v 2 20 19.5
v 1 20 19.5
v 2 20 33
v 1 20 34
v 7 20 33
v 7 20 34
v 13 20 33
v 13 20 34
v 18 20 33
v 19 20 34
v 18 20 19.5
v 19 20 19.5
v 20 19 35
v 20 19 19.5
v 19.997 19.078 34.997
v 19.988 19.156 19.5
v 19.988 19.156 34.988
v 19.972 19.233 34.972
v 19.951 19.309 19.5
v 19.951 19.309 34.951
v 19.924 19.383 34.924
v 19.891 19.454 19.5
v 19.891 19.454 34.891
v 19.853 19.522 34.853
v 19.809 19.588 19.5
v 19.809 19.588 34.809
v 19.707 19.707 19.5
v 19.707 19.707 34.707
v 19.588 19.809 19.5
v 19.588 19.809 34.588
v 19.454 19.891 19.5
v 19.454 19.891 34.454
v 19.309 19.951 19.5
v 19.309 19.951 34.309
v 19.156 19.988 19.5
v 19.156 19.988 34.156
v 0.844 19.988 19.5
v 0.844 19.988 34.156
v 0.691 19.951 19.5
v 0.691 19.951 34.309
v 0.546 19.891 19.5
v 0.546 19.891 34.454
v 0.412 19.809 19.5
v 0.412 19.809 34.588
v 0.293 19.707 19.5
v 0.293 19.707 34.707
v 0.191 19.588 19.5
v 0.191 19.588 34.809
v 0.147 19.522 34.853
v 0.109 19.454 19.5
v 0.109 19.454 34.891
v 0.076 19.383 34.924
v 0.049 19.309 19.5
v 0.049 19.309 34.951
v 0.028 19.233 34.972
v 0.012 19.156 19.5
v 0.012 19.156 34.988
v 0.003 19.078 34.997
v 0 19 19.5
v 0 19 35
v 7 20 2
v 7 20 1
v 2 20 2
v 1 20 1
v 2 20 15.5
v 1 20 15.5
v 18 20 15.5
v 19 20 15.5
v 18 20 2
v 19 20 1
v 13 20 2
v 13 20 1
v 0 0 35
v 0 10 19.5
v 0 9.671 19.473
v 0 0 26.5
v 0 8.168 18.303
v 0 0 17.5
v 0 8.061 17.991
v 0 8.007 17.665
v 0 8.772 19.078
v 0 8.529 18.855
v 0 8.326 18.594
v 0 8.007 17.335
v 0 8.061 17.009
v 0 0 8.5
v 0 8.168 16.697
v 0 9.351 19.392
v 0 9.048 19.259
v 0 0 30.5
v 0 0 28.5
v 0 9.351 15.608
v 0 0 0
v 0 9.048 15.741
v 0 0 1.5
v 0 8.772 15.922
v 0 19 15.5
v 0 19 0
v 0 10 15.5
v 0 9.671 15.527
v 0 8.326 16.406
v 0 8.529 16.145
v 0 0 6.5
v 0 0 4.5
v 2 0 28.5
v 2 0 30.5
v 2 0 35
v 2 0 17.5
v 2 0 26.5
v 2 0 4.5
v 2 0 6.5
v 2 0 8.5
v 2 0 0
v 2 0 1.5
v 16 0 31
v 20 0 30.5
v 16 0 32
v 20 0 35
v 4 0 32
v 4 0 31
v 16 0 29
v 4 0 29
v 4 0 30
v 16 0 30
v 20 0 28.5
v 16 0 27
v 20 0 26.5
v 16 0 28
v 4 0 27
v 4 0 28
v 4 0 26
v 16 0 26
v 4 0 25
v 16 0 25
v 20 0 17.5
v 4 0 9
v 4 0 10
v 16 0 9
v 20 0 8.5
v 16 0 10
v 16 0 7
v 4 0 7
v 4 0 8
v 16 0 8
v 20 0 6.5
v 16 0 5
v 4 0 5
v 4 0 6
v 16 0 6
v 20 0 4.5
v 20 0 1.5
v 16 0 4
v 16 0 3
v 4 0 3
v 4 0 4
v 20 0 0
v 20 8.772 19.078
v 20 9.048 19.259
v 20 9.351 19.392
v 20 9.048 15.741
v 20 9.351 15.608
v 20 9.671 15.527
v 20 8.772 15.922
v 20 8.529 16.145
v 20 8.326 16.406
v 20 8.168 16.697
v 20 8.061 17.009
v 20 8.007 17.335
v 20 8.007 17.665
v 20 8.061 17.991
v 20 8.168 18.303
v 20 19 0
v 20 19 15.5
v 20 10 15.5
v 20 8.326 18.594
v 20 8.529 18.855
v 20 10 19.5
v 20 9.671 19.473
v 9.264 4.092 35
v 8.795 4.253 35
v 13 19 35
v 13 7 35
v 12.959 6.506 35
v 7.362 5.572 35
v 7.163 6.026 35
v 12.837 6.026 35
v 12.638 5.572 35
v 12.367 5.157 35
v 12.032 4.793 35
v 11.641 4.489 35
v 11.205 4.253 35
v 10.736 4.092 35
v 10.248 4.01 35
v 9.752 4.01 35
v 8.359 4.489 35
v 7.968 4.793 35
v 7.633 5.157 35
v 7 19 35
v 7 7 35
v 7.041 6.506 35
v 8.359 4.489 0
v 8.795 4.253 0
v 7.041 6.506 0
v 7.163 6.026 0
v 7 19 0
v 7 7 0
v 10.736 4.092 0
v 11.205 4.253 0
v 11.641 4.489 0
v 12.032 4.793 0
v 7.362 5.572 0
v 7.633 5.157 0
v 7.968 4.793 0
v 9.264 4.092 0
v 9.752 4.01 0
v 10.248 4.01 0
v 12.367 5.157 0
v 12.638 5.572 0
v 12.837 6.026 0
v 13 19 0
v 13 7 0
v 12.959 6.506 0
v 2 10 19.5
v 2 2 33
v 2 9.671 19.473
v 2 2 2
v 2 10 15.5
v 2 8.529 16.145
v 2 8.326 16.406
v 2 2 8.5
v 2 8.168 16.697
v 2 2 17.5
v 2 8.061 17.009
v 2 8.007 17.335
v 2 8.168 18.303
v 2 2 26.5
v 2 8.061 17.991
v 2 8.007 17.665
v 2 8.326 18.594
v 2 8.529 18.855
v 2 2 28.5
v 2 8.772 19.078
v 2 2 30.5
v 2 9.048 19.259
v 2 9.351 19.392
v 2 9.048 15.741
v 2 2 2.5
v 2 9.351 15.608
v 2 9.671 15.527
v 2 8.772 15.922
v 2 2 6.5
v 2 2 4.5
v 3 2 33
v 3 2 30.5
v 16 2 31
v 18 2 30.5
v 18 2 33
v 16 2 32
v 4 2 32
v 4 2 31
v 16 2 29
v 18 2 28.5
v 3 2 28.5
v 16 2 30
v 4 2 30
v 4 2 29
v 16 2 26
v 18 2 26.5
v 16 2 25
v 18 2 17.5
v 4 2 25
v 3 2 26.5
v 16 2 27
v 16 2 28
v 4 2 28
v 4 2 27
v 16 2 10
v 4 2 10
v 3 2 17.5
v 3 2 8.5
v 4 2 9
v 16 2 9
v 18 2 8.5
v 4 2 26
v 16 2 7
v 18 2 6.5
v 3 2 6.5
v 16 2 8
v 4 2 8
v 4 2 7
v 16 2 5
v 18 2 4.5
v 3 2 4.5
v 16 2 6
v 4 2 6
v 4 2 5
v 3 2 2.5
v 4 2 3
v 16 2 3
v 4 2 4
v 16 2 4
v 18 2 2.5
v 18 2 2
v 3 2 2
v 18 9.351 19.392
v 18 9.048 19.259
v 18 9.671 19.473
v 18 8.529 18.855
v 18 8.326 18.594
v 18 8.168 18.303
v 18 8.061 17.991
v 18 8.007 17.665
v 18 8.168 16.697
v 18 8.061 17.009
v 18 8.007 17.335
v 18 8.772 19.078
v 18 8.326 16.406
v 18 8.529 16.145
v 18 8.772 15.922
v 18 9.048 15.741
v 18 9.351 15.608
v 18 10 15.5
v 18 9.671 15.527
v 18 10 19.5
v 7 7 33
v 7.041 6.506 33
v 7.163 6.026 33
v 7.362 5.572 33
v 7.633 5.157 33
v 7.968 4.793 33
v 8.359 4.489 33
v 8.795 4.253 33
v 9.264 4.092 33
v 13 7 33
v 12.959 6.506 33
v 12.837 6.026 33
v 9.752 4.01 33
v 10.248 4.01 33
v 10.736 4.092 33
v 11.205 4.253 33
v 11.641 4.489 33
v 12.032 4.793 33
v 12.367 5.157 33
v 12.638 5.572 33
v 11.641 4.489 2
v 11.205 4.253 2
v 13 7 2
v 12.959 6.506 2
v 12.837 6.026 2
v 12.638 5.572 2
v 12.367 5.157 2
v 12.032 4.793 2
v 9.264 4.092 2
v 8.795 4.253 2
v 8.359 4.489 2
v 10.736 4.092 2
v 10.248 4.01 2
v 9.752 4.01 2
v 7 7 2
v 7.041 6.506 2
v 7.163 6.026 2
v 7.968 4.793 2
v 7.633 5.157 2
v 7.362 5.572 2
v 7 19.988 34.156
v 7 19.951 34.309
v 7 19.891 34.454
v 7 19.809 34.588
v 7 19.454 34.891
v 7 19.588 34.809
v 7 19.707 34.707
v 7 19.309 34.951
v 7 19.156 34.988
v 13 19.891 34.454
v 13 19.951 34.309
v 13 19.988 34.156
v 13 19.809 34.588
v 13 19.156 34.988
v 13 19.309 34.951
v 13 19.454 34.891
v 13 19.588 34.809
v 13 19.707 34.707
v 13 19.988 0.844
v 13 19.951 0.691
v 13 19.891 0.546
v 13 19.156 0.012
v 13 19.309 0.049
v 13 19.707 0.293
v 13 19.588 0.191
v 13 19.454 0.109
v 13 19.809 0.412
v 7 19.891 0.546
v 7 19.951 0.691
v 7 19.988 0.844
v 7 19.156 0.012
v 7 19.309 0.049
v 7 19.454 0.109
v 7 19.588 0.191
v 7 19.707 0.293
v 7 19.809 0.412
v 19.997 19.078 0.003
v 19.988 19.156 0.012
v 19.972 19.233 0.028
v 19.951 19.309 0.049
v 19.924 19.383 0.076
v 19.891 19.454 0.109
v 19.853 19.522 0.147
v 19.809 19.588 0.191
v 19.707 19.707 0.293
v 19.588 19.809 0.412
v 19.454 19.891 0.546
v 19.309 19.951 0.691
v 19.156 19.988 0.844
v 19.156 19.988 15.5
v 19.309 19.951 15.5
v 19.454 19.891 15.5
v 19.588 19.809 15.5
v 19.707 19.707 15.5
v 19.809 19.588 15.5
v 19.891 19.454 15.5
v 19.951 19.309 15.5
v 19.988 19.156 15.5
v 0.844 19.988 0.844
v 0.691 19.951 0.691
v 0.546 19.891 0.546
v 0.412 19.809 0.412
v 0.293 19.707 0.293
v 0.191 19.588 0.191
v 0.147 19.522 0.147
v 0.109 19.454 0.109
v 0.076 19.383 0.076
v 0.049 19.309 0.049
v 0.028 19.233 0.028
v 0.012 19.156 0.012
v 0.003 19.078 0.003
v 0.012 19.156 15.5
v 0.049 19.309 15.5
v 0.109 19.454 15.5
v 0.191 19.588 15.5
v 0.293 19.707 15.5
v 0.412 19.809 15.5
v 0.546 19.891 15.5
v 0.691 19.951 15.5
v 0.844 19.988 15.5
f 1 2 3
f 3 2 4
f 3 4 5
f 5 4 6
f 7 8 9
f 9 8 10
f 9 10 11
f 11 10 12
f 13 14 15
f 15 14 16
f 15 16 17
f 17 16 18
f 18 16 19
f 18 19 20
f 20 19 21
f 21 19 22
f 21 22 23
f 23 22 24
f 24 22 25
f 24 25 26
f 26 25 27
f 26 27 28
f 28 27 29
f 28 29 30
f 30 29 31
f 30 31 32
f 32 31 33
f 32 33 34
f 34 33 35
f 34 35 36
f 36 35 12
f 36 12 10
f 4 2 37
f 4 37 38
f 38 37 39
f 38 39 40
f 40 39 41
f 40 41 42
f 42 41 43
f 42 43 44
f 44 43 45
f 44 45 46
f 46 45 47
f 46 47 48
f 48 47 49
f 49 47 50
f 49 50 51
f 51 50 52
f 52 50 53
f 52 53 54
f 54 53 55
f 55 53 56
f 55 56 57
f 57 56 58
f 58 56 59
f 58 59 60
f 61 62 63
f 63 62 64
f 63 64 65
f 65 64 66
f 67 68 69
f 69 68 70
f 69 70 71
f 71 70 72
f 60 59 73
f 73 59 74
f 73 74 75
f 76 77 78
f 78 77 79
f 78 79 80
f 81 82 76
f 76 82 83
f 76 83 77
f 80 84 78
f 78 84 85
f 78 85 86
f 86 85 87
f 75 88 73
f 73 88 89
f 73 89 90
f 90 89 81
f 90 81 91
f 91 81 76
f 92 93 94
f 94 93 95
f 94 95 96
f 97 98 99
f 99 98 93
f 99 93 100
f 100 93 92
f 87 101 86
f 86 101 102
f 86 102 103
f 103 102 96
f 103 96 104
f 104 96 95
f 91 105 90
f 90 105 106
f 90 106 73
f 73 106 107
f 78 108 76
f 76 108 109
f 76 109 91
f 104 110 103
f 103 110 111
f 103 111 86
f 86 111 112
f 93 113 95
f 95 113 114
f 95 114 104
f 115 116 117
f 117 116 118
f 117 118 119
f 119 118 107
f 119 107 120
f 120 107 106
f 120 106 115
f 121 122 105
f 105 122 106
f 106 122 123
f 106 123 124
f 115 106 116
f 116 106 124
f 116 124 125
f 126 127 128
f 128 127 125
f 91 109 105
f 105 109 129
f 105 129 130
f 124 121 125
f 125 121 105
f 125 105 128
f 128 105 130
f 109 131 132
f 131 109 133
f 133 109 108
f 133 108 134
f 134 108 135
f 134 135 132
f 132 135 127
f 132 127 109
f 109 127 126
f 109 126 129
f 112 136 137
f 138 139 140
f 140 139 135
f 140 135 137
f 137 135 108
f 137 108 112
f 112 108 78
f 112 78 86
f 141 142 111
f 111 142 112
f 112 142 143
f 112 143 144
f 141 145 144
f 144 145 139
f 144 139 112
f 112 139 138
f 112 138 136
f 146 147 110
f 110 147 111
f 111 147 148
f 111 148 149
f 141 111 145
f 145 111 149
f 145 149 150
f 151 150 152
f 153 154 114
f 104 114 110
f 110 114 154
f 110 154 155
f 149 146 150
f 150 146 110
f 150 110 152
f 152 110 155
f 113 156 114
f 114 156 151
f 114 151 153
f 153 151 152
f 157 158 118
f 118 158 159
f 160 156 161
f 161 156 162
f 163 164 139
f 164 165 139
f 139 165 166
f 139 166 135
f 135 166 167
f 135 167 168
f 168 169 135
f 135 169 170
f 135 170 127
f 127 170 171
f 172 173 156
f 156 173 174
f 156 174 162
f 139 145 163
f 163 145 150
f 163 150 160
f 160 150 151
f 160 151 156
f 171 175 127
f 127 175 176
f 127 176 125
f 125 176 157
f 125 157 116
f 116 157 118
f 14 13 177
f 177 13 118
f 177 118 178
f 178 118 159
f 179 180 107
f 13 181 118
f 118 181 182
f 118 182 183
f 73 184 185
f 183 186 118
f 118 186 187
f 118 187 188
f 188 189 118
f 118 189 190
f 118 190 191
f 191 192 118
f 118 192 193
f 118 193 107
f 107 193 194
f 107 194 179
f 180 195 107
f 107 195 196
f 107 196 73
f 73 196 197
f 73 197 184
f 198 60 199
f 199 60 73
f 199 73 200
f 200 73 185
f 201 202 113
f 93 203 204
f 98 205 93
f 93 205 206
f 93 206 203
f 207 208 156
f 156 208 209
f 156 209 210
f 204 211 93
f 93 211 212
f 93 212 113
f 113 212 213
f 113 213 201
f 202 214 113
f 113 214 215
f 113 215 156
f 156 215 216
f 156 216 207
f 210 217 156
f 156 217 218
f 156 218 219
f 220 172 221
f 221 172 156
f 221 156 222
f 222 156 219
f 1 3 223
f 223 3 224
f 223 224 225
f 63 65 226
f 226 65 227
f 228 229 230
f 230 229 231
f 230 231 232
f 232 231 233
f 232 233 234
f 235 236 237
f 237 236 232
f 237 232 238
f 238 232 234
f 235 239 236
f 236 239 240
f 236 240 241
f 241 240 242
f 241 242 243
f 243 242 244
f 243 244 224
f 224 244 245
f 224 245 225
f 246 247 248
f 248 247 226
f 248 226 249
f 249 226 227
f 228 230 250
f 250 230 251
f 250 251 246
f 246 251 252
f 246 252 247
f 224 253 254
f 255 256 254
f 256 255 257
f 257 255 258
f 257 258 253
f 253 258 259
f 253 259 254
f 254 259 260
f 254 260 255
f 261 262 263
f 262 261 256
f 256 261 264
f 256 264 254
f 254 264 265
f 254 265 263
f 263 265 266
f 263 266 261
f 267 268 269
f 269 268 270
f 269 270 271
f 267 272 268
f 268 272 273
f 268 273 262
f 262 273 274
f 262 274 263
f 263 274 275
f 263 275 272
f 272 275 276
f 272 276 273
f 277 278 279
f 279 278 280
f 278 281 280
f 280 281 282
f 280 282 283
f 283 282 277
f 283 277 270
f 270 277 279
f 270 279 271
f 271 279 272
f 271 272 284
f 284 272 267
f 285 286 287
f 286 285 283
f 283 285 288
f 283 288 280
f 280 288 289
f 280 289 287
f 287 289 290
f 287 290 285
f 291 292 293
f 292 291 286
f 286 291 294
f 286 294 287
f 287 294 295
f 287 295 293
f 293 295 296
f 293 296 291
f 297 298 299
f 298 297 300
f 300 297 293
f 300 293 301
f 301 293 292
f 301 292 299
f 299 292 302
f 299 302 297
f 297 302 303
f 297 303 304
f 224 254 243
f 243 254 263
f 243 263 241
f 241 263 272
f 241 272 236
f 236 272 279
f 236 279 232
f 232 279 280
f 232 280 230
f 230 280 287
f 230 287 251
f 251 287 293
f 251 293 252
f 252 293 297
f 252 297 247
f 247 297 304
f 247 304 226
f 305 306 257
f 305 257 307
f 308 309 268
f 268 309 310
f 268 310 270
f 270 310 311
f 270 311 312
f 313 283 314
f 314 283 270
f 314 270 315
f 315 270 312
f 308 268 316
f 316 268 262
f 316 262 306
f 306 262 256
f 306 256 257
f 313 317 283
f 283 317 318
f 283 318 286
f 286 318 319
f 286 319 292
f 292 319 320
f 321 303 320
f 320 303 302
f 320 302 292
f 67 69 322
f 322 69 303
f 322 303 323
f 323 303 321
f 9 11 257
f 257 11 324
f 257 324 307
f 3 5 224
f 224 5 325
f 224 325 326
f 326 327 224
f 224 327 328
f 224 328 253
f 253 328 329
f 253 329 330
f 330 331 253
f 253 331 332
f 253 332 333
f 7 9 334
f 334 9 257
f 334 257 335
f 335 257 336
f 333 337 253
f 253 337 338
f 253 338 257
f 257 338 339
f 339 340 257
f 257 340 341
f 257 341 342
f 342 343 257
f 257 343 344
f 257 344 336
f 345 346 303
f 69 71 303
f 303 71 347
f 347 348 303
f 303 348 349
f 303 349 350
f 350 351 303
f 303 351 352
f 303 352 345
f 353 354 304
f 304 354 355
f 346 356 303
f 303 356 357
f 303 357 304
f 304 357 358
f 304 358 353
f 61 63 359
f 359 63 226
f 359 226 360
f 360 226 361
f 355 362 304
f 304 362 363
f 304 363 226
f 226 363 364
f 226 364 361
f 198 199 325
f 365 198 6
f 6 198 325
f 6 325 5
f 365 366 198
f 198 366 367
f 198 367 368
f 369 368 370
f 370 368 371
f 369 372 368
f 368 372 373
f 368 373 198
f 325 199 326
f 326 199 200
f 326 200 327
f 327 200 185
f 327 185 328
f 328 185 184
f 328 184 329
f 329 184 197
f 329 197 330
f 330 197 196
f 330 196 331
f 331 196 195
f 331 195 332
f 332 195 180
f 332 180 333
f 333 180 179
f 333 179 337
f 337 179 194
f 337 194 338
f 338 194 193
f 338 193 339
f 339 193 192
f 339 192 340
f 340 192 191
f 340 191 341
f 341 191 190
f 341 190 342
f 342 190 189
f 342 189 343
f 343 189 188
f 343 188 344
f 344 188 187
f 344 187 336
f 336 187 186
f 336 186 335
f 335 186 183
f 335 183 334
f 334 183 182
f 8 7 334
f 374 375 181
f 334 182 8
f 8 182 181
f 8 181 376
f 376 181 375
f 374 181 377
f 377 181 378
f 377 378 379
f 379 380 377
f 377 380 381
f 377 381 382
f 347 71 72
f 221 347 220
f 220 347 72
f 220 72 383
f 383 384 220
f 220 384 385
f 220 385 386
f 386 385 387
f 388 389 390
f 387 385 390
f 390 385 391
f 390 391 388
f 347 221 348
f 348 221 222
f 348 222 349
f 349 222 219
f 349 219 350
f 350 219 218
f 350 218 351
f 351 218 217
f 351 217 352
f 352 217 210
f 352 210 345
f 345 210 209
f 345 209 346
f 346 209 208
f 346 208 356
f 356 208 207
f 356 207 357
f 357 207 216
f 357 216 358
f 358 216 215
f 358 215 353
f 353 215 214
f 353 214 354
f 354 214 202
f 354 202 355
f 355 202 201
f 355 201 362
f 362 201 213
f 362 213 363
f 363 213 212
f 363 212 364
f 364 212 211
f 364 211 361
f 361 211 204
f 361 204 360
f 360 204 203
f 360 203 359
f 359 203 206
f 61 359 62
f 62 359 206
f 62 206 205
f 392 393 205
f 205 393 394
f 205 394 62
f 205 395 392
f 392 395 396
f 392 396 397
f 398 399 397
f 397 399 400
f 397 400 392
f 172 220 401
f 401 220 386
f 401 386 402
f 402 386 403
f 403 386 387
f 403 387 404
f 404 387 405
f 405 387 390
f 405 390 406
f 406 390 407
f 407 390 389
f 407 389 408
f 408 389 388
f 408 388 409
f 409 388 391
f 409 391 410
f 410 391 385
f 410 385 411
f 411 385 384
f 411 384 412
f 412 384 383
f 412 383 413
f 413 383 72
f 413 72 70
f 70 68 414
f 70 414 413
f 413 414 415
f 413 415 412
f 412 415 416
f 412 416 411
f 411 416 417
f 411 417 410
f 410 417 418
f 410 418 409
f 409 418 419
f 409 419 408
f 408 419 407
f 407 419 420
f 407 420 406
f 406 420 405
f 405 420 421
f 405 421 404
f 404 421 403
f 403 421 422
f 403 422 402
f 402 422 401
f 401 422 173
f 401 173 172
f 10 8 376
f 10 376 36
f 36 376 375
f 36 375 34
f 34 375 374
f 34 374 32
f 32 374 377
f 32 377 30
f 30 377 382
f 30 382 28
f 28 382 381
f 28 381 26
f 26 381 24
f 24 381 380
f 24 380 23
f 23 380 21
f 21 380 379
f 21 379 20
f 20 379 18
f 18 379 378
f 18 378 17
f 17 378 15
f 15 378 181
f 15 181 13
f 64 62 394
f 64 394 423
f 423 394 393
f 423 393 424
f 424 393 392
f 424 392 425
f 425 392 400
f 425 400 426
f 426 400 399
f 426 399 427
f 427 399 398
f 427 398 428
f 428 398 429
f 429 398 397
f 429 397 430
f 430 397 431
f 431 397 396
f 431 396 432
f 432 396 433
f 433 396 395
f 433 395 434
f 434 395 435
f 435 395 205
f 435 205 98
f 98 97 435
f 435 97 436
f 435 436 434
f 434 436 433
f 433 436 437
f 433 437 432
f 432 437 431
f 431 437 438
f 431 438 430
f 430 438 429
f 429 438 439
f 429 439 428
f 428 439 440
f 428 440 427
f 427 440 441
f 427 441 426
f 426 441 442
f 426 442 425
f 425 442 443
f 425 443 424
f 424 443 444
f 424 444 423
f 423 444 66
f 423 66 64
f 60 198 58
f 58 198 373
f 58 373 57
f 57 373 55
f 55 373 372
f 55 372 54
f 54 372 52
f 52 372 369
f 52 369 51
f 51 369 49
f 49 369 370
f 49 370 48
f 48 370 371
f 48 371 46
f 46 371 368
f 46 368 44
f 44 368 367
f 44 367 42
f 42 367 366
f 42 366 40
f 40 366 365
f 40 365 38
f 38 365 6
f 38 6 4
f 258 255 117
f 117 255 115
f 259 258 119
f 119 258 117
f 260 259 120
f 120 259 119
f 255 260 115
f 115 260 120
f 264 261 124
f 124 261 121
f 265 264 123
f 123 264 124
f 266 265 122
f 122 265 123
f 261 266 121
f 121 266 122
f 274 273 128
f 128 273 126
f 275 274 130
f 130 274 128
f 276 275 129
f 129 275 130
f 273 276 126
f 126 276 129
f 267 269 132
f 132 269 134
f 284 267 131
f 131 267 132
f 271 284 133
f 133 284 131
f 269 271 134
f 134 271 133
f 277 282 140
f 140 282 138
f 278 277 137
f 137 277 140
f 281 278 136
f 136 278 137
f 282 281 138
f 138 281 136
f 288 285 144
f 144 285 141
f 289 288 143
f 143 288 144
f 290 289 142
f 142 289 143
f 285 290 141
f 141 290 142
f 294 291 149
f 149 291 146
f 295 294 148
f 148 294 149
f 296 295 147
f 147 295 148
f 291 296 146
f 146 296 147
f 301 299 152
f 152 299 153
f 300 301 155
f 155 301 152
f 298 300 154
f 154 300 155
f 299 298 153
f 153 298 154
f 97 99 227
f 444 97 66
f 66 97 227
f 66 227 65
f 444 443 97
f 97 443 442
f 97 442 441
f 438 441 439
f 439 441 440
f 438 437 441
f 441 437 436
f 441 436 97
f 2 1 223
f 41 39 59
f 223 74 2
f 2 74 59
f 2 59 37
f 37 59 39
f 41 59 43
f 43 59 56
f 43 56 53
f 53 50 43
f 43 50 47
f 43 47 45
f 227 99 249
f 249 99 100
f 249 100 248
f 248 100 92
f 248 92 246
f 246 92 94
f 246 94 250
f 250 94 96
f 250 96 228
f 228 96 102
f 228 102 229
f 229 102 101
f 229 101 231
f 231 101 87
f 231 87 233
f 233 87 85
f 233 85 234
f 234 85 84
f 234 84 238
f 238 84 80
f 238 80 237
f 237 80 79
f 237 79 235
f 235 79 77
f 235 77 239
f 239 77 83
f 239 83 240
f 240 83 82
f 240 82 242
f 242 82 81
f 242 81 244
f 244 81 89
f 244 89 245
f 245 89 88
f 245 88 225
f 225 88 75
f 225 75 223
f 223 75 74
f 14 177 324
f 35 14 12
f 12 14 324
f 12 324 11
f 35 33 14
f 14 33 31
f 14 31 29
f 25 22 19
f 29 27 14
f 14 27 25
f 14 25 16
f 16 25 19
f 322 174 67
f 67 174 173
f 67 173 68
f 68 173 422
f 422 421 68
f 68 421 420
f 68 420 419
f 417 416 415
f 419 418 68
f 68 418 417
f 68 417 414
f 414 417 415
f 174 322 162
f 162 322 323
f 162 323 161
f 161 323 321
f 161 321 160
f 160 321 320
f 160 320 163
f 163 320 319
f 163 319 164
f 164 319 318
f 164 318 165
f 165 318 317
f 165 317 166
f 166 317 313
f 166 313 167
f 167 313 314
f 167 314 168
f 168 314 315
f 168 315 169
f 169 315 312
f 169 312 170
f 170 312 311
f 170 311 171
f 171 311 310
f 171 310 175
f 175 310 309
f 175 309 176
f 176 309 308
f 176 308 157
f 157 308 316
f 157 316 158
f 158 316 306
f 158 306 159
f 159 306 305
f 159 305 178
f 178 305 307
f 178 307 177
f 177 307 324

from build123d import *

# Parameters (mm, degrees)
SKIZZE1_W                                   = 20
SKIZZE1_H                                   = 20
AUFSATZ_LINEAR_AUSTRAGEN1_DEPTH             = 35
WANDUNG1_T                                  = -2
SCHNITT_LINEAR_AUSTRAGEN2_DEPTH             = 33
VERRUNDUNG1_R                               = 1
SKIZZE4_W                                   = 12
SKIZZE4_H                                   = 1
SCHNITT_LINEAR_AUSTRAGEN3_DEPTH             = 2
LINEARES_MUSTER1_COUNT                      = 8
LINEARES_MUSTER1_PITCH                      = 2
LINEARES_MUSTER1_COL_COUNT                  = 8
LINEARES_MUSTER1_COL_PITCH                  = 2
SKIZZE5_W                                   = 12
SKIZZE5_H                                   = 15
AUFSATZ_LINEAR_AUSTRAGEN2_DEPTH             = 2
SCHNITT_LINEAR_AUSTRAGEN4_REACH             = 46.147
SCHNITT_LINEAR_AUSTRAGEN4_DIRECTION_2_REACH = 46.147


with BuildPart() as part:
    # Skizze1 → Aufsatz-Linear austragen1 (new body)
    with BuildSketch(Plane.XY):
        with Locations((10, 10)):
            Rectangle(SKIZZE1_W, SKIZZE1_H)
    extrude(amount=AUFSATZ_LINEAR_AUSTRAGEN1_DEPTH)

    # Wandung1
    wandung1_openings = [part.faces().sort_by_distance(p)[0] for p in [
        (10, 20, 17.5),
    ]]
    offset(amount=WANDUNG1_T, openings=wandung1_openings, kind=Kind.INTERSECTION)

    # Skizze3 → Schnitt-Linear austragen2 (cut)
    with BuildSketch(Plane.XY.offset(35)):
        with BuildLine():
            Line((13, 20), (13, 7))
            ThreePointArc((13, 7), (10, 4), (7, 7))
            Line((7, 7), (7, 20))
            ThreePointArc((7, 20), (10, 23), (13, 20))
        make_face()
    schnitt_linear_austragen2 = extrude(amount=-SCHNITT_LINEAR_AUSTRAGEN2_DEPTH, mode=Mode.SUBTRACT)

    # Spiegeln1: Schnitt-Linear austragen2 across plane
    add(schnitt_linear_austragen2.mirror(Plane.XY.offset(17.5)), mode=Mode.SUBTRACT)

    # Verrundung1
    verrundung1_edges = [part.edges().sort_by_distance(p)[0] for p in [
        (16.5, 20, 35),
        (3.5, 20, 35),
        (3.5, 20, 0),
        (16.5, 20, 0),
        (0, 20, 17.5),
        (20, 20, 17.5),
    ]]
    fillet(verrundung1_edges, radius=VERRUNDUNG1_R)

    # Skizze4 → Schnitt-Linear austragen3 (cut)
    with BuildSketch(Plane(origin=(0, 2, 0), x_dir=(1, 0, 0), z_dir=(0, 1, 0))):
        with Locations((10, -17.5)):
            Rectangle(SKIZZE4_W, SKIZZE4_H)
    schnitt_linear_austragen3 = extrude(amount=-SCHNITT_LINEAR_AUSTRAGEN3_DEPTH, mode=Mode.SUBTRACT)

    # Lineares Muster1: Schnitt-Linear austragen3 ×8
    with Locations(*[(0, 0, i * LINEARES_MUSTER1_PITCH) for i in range(1, LINEARES_MUSTER1_COUNT)]):
        add(schnitt_linear_austragen3, mode=Mode.SUBTRACT)

    # Lineares Muster1 col: Schnitt-Linear austragen3 ×8
    with Locations(*[(0, 0, -i * LINEARES_MUSTER1_COL_PITCH) for i in range(1, LINEARES_MUSTER1_COL_COUNT)]):
        add(schnitt_linear_austragen3, mode=Mode.SUBTRACT)

    # Skizze5 → Aufsatz-Linear austragen2 (add)
    with BuildSketch(Plane.XZ):
        with Locations((10, 17.5)):
            Rectangle(SKIZZE5_W, SKIZZE5_H)
    extrude(amount=-AUFSATZ_LINEAR_AUSTRAGEN2_DEPTH)

    # Schnitt-Linear austragen4: up to this face of the body (flat: up to its plane)
    schnitt_linear_austragen4_end = Plane(part.part.faces().sort_by_distance((20, 9.5, 17.5))[0])
    # Skizze7 → Schnitt-Linear austragen4 (cut, up to the picked face)
    with BuildSketch(Plane.ZY.offset(-18), mode=Mode.PRIVATE) as schnitt_linear_austragen4_sk1:
        with BuildLine():
            Line((19.5, 30), (19.5, 10))
            ThreePointArc((19.5, 10), (17.5, 8), (15.5, 10))
            Line((15.5, 10), (15.5, 30))
            ThreePointArc((15.5, 30), (17.5, 32), (19.5, 30))
        make_face()
    schnitt_linear_austragen4_tool1 = split(extrude(schnitt_linear_austragen4_sk1.sketch, amount=-SCHNITT_LINEAR_AUSTRAGEN4_REACH, mode=Mode.PRIVATE), bisect_by=schnitt_linear_austragen4_end, keep=Keep.BOTH, mode=Mode.PRIVATE)
    add(schnitt_linear_austragen4_tool1.solids().sort_by(Axis((18, 20, 17.5), (1, 0, 0)))[0], mode=Mode.SUBTRACT)

    # Schnitt-Linear austragen4 direction 2: up to this face of the body (flat: up to its plane)
    schnitt_linear_austragen4_direction_2_end = Plane(part.part.faces().sort_by_distance((0, 9.5, 17.5))[0])
    # Skizze7 → Schnitt-Linear austragen4 direction 2 (cut, up to the picked face)
    with BuildSketch(Plane.ZY.offset(-18), mode=Mode.PRIVATE) as schnitt_linear_austragen4_direction_2_sk1:
        with BuildLine():
            Line((19.5, 30), (19.5, 10))
            ThreePointArc((19.5, 10), (17.5, 8), (15.5, 10))
            Line((15.5, 10), (15.5, 30))
            ThreePointArc((15.5, 30), (17.5, 32), (19.5, 30))
        make_face()
    schnitt_linear_austragen4_direction_2_tool1 = split(extrude(schnitt_linear_austragen4_direction_2_sk1.sketch, amount=SCHNITT_LINEAR_AUSTRAGEN4_DIRECTION_2_REACH, mode=Mode.PRIVATE), bisect_by=schnitt_linear_austragen4_direction_2_end, keep=Keep.BOTH, mode=Mode.PRIVATE)
    add(schnitt_linear_austragen4_direction_2_tool1.solids().sort_by(Axis((18, 20, 17.5), (-1, 0, 0)))[0], mode=Mode.SUBTRACT)


solid = part.part
